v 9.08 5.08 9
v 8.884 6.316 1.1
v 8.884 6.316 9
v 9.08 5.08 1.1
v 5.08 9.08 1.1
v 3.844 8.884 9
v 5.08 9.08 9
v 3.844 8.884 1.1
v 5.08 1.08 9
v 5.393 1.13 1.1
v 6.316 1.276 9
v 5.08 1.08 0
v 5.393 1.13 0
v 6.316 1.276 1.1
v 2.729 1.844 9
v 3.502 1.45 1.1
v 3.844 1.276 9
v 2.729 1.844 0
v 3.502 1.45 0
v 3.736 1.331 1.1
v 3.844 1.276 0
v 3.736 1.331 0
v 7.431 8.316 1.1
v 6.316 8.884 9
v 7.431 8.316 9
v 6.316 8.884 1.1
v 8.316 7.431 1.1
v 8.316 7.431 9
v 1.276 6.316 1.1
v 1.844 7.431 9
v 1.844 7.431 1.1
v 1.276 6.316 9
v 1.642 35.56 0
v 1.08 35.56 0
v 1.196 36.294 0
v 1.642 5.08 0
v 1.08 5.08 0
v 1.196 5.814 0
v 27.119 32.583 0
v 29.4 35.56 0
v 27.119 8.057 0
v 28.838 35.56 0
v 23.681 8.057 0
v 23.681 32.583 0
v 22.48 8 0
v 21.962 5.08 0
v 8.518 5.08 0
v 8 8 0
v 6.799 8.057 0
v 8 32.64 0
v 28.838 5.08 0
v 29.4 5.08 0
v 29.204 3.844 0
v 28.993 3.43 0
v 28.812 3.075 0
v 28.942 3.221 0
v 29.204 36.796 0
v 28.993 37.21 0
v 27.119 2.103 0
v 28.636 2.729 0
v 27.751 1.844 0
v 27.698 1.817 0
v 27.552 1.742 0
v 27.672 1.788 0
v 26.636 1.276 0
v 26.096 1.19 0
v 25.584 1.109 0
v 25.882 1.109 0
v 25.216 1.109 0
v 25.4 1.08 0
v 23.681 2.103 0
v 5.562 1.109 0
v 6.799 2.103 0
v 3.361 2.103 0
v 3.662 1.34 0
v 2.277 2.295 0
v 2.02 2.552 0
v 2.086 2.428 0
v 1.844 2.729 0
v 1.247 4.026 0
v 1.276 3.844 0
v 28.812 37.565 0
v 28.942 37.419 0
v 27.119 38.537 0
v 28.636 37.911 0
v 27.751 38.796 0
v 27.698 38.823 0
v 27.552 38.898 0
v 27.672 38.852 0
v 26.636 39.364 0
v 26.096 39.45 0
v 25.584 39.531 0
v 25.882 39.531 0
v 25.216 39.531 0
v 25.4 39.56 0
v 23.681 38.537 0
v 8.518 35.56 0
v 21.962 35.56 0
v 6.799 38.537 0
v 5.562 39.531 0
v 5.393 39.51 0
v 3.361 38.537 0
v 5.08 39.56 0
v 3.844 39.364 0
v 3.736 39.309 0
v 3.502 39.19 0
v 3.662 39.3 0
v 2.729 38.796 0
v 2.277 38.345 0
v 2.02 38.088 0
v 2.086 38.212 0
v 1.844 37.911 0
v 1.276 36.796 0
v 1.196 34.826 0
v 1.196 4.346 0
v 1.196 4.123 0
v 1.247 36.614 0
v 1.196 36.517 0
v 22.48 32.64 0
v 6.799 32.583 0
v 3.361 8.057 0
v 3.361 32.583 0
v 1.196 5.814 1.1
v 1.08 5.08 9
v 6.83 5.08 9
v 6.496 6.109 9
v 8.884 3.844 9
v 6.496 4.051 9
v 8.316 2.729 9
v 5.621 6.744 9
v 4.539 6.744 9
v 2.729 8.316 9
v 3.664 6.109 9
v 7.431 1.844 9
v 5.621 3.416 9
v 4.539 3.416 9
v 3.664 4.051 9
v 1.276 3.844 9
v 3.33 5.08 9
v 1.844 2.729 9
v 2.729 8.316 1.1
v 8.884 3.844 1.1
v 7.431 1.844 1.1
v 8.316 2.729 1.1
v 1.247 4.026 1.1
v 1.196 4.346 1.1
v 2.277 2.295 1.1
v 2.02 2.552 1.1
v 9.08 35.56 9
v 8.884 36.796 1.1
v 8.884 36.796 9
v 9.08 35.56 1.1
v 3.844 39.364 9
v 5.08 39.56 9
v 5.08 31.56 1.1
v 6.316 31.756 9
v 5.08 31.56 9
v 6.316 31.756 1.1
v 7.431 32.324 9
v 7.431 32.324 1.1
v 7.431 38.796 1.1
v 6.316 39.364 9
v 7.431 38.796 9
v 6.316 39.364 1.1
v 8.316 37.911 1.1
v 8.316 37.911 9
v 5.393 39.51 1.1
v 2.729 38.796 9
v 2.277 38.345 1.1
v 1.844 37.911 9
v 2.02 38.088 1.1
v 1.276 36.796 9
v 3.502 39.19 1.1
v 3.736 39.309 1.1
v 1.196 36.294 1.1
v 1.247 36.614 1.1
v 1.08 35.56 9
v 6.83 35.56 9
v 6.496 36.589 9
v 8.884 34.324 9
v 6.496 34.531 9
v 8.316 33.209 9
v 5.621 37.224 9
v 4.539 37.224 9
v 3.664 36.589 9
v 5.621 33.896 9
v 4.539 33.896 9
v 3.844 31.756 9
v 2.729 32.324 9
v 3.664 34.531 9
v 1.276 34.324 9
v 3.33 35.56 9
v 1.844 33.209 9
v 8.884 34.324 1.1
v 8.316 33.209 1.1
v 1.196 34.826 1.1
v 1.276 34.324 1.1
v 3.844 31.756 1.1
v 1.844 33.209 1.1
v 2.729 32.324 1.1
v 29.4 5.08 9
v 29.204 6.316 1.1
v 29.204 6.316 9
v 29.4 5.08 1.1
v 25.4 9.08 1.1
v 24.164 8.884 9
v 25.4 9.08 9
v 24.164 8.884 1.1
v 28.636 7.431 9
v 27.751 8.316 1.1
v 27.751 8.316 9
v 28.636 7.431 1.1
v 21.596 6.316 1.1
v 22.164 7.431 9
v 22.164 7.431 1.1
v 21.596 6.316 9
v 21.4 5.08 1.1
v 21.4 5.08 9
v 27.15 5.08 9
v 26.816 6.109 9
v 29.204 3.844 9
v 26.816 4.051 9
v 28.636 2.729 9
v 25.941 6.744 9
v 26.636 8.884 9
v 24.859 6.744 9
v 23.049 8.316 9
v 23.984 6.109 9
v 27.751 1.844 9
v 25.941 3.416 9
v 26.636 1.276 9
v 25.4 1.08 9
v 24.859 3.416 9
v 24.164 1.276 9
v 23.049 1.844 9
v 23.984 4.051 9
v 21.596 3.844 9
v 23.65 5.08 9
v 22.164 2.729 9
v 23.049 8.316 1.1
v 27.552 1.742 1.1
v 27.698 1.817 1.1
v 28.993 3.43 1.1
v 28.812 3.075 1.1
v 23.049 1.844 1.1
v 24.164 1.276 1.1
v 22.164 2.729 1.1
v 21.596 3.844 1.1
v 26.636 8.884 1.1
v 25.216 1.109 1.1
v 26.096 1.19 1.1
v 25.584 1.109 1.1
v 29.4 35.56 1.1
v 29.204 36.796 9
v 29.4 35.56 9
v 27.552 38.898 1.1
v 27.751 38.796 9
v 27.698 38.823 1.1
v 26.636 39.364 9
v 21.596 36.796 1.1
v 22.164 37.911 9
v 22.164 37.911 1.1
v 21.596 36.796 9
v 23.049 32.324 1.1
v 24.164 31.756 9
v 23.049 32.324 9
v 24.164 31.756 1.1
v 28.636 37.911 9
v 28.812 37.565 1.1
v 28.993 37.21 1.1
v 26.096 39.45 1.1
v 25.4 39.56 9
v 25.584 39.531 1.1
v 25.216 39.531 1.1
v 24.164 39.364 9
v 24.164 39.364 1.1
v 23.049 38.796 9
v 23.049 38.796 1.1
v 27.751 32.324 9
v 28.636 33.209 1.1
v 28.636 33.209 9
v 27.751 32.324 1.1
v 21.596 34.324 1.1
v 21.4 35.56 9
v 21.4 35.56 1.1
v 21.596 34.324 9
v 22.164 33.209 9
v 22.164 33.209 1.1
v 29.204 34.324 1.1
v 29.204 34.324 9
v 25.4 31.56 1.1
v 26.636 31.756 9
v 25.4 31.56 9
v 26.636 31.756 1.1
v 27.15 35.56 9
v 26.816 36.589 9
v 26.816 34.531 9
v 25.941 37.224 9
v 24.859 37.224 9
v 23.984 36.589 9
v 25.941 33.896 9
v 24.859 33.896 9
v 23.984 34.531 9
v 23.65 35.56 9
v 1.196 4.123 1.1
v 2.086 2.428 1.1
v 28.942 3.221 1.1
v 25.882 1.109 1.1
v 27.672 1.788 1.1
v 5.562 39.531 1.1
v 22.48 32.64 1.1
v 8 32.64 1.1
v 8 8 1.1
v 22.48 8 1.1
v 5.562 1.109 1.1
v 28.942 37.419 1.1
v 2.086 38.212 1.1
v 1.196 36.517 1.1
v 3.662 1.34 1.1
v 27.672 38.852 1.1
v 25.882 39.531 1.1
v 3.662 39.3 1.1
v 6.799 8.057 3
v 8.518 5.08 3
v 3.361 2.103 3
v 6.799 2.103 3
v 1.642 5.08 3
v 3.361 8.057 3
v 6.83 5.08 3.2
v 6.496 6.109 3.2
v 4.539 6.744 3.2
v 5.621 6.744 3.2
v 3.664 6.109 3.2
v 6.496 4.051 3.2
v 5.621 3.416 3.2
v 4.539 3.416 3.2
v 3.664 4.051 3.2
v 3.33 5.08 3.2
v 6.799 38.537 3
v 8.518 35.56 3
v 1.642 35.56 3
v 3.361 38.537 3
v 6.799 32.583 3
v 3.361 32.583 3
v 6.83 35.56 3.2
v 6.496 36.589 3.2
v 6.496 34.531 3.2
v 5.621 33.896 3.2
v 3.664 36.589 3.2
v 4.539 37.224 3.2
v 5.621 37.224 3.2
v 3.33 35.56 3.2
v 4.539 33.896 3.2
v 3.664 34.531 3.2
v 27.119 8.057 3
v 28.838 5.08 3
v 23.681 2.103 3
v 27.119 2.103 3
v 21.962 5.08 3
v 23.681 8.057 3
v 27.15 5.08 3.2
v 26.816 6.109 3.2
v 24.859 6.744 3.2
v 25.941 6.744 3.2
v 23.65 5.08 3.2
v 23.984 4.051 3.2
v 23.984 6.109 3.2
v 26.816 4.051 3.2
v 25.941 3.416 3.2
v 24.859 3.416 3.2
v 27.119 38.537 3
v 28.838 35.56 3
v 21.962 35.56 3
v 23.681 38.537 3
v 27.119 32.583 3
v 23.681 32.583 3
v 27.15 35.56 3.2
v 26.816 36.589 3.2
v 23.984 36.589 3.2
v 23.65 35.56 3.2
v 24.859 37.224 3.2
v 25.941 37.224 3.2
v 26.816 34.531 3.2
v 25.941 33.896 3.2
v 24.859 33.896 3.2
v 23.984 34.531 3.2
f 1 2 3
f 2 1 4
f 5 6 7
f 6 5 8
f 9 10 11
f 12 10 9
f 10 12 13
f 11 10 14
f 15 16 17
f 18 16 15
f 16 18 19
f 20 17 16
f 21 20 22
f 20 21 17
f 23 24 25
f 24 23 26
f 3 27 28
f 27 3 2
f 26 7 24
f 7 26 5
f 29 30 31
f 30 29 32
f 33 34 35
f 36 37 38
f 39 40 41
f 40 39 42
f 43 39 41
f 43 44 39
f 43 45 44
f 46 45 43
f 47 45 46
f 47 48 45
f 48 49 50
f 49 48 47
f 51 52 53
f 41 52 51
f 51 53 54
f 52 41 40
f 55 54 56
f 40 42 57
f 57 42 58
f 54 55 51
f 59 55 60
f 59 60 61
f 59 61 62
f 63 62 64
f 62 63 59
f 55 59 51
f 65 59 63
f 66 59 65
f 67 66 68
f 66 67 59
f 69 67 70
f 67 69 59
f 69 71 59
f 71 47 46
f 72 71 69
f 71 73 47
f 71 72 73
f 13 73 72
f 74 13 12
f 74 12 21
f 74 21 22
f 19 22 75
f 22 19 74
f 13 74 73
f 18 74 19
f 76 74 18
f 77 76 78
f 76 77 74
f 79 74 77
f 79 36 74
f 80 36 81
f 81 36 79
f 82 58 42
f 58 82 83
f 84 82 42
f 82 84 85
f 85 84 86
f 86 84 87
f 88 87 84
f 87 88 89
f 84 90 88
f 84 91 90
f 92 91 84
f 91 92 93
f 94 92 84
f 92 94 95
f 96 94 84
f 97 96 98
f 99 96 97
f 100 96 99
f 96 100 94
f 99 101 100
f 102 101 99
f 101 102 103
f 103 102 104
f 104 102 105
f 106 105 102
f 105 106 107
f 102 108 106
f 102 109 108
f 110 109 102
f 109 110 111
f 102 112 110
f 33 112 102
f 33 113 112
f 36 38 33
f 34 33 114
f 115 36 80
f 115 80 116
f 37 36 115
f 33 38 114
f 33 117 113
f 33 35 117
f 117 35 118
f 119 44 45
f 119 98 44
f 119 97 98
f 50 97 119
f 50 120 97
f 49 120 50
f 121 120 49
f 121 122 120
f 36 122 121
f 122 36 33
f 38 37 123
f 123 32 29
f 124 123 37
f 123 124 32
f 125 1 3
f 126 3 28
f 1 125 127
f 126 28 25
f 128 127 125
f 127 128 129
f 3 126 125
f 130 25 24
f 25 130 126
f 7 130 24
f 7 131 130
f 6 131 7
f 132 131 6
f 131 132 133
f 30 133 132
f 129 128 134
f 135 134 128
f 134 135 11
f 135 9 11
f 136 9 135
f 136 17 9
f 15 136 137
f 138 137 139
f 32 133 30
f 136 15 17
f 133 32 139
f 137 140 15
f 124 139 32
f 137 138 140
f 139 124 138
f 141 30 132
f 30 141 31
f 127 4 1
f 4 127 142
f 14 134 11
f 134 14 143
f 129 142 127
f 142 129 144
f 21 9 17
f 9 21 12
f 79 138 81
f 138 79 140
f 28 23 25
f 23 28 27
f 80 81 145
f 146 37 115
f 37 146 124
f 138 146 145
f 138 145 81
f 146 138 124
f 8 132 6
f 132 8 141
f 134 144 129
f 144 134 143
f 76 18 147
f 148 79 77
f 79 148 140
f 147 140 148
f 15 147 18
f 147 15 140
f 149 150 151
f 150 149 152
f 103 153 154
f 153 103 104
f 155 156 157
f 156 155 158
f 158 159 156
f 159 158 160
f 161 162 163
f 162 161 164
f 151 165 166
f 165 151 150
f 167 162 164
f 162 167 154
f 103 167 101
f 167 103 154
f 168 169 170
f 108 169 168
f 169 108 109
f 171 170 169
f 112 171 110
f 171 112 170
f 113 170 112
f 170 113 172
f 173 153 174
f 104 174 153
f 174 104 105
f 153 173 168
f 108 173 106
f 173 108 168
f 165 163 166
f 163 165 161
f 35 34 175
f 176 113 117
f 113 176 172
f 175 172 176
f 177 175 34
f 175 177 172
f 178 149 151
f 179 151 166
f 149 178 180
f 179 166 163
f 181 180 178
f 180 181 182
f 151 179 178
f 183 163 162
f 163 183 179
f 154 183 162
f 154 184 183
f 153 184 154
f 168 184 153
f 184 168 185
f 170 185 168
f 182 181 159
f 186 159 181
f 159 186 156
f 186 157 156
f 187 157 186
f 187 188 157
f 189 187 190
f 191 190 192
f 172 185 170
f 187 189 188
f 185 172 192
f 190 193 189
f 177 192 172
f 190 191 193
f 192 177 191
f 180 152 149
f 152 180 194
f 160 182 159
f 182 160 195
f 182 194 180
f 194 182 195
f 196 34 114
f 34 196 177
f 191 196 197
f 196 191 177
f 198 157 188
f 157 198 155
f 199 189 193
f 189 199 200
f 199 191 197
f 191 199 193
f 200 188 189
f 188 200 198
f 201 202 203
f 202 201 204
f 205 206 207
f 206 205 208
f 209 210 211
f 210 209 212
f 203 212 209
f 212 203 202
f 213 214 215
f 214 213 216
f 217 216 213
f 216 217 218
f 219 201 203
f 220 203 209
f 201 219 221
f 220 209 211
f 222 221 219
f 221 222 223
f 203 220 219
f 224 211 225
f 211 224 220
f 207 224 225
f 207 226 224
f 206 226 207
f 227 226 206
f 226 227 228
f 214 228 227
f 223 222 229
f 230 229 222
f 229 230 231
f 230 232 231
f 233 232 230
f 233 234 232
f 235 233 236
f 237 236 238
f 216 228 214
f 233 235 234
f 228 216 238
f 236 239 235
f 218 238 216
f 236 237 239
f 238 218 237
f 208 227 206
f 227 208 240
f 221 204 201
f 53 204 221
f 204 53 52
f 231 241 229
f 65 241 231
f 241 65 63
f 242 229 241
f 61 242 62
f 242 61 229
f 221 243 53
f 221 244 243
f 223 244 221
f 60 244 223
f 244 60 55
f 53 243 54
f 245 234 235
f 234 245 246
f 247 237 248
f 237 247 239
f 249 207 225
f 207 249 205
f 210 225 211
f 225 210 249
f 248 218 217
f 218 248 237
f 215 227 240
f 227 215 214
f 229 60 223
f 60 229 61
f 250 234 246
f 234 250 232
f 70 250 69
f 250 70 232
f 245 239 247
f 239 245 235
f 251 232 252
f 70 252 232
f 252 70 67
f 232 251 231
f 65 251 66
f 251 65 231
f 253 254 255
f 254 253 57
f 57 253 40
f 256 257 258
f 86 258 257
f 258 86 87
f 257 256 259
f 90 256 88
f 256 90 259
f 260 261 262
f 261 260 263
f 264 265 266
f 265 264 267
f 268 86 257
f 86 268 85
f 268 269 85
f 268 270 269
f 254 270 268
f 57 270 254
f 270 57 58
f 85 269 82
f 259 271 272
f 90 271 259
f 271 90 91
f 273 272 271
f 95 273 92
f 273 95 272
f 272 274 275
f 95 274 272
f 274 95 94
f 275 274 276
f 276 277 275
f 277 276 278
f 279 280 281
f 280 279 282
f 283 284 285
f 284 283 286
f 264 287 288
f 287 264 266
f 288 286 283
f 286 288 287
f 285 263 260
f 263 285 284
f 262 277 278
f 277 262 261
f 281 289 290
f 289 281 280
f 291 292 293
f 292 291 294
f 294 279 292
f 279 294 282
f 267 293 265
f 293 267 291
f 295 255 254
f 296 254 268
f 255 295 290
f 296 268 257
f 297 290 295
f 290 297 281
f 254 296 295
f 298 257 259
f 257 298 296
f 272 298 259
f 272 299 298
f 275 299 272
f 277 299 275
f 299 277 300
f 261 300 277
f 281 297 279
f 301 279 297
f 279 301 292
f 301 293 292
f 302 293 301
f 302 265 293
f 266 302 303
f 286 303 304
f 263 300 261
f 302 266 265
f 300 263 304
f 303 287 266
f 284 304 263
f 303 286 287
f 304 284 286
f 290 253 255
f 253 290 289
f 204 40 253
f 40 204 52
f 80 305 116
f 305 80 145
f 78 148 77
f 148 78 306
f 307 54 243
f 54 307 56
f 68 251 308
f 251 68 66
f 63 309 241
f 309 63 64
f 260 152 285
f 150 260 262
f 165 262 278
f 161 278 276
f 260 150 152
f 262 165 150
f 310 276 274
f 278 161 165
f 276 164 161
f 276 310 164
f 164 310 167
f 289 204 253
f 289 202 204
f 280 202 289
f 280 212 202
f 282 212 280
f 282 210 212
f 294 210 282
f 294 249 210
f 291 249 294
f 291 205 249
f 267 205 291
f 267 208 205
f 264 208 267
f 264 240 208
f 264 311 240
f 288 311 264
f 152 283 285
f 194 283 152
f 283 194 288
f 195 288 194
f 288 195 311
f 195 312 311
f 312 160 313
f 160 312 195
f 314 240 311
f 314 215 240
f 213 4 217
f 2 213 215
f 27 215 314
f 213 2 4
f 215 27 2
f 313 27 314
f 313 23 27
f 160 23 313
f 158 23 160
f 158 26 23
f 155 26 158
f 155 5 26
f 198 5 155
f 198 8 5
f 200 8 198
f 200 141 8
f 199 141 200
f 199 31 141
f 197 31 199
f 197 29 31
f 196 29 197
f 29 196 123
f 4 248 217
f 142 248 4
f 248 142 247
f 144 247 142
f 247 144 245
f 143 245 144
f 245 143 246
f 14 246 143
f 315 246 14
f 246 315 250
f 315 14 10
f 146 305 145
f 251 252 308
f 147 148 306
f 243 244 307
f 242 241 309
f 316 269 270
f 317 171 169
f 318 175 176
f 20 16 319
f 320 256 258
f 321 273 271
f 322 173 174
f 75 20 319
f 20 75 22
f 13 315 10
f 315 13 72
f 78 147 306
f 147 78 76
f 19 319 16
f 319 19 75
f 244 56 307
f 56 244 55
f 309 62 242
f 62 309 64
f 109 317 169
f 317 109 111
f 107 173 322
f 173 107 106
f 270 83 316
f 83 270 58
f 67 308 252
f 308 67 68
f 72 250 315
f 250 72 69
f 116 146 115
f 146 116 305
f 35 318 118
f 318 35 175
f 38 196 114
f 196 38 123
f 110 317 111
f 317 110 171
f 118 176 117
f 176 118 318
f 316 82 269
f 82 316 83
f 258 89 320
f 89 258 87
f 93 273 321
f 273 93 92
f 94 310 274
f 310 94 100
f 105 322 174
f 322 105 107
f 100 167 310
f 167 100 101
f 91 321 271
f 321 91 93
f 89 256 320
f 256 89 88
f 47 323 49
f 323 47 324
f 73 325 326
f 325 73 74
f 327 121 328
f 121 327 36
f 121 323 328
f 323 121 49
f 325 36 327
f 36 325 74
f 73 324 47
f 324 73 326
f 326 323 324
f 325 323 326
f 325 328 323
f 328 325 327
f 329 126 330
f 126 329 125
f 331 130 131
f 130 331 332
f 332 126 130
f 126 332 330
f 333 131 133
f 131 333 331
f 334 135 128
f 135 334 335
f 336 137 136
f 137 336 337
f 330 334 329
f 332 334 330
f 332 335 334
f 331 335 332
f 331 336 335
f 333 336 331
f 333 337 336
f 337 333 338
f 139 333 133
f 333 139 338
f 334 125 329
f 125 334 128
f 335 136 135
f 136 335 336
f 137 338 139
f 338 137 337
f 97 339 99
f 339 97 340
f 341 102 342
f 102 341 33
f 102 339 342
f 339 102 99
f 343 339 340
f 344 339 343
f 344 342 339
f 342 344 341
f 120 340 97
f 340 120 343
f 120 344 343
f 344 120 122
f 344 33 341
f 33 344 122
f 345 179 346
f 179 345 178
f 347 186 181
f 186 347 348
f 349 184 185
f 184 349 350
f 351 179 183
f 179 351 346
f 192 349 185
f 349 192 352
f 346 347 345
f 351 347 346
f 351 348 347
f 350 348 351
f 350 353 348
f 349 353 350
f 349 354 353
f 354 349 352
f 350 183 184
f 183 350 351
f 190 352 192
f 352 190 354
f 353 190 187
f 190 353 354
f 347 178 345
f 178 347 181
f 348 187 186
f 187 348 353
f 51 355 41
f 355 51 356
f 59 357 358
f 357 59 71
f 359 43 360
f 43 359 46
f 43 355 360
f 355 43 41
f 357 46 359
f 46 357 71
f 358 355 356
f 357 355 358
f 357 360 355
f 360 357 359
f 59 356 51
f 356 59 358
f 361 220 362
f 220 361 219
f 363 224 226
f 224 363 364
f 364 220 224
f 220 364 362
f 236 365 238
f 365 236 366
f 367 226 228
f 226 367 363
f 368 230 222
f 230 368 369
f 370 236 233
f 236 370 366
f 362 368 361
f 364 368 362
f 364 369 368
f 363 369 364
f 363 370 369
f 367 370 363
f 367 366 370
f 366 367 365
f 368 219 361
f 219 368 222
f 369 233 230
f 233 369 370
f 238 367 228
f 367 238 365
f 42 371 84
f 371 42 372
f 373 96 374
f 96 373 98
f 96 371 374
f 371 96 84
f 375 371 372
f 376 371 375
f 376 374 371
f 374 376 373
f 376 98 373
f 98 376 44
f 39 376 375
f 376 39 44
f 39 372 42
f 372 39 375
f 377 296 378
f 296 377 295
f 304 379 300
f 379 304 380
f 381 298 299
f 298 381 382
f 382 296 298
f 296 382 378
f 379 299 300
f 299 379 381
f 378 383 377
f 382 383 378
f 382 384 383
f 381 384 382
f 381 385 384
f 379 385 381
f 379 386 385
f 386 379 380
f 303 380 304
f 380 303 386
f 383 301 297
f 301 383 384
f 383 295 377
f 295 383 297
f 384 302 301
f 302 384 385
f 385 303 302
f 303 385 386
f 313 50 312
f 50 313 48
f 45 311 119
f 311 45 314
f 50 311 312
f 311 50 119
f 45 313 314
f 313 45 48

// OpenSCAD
x_holes = 3;
y_holes = 4;
pedestal_height = 9;   // designed for use the MLAB standard 20mm screws.

MLAB_grid = 10.16;
thickness = 1;          // thickness of bottom belt
pile_radius = 4;        // radius of pile around screw
x_size = x_holes * MLAB_grid ;
y_size = y_holes * MLAB_grid ;
mount_hole = 3.5;
//nut_size = 6.8;  //size suitable for PLA material
nut_size = 6.7;  //size suitable for ABS material
clear = 0.175;




MLAB_grid_xoffset = MLAB_grid/2;
MLAB_grid_yoffset = MLAB_grid/2;

grid_list = [for (j = [MLAB_grid_xoffset : MLAB_grid: x_size], i = [MLAB_grid_yoffset :MLAB_grid: y_size]) 
if ((j>(x_size-10) && i>(y_size-10)) || (j<10 && i<10) || (j<10 && i>(y_size-10)) || (j>(x_size-10) && i<10) ) [j, i] ];


difference () {
    union () {
        for (j = grid_list) {
            translate (concat(j, [0]))
            cylinder (h = pedestal_height, r= pile_radius, $fn=20);
        }

            translate ([MLAB_grid_xoffset , MLAB_grid_yoffset , 0])
                minkowski() {
                cube([x_size - 2*(MLAB_grid/2 - pile_radius) - 2*pile_radius, y_size - 2*(MLAB_grid/2 - pile_radius) - 2*pile_radius, thickness]);          // base plastics brick
                cylinder(r=pile_radius,h=0.1);
            }
    }
    
    translate ([2*pile_radius, 2*pile_radius, 0]) // central hole in module support
        cube([x_size-4*pile_radius, y_size-4*pile_radius, 2*thickness]);          

    // MLAB grid holes
    for (j = grid_list) {
            translate (concat(j, [0]))
            cylinder (h = 3, r= (nut_size+clear)/2, $fn=6);
            translate (concat(j, [3.2]))  // one solid layer for slicer (the holes will be pierced on demand )
            cylinder (h = pedestal_height, r= mount_hole/2, $fn=10);
    }    
}
